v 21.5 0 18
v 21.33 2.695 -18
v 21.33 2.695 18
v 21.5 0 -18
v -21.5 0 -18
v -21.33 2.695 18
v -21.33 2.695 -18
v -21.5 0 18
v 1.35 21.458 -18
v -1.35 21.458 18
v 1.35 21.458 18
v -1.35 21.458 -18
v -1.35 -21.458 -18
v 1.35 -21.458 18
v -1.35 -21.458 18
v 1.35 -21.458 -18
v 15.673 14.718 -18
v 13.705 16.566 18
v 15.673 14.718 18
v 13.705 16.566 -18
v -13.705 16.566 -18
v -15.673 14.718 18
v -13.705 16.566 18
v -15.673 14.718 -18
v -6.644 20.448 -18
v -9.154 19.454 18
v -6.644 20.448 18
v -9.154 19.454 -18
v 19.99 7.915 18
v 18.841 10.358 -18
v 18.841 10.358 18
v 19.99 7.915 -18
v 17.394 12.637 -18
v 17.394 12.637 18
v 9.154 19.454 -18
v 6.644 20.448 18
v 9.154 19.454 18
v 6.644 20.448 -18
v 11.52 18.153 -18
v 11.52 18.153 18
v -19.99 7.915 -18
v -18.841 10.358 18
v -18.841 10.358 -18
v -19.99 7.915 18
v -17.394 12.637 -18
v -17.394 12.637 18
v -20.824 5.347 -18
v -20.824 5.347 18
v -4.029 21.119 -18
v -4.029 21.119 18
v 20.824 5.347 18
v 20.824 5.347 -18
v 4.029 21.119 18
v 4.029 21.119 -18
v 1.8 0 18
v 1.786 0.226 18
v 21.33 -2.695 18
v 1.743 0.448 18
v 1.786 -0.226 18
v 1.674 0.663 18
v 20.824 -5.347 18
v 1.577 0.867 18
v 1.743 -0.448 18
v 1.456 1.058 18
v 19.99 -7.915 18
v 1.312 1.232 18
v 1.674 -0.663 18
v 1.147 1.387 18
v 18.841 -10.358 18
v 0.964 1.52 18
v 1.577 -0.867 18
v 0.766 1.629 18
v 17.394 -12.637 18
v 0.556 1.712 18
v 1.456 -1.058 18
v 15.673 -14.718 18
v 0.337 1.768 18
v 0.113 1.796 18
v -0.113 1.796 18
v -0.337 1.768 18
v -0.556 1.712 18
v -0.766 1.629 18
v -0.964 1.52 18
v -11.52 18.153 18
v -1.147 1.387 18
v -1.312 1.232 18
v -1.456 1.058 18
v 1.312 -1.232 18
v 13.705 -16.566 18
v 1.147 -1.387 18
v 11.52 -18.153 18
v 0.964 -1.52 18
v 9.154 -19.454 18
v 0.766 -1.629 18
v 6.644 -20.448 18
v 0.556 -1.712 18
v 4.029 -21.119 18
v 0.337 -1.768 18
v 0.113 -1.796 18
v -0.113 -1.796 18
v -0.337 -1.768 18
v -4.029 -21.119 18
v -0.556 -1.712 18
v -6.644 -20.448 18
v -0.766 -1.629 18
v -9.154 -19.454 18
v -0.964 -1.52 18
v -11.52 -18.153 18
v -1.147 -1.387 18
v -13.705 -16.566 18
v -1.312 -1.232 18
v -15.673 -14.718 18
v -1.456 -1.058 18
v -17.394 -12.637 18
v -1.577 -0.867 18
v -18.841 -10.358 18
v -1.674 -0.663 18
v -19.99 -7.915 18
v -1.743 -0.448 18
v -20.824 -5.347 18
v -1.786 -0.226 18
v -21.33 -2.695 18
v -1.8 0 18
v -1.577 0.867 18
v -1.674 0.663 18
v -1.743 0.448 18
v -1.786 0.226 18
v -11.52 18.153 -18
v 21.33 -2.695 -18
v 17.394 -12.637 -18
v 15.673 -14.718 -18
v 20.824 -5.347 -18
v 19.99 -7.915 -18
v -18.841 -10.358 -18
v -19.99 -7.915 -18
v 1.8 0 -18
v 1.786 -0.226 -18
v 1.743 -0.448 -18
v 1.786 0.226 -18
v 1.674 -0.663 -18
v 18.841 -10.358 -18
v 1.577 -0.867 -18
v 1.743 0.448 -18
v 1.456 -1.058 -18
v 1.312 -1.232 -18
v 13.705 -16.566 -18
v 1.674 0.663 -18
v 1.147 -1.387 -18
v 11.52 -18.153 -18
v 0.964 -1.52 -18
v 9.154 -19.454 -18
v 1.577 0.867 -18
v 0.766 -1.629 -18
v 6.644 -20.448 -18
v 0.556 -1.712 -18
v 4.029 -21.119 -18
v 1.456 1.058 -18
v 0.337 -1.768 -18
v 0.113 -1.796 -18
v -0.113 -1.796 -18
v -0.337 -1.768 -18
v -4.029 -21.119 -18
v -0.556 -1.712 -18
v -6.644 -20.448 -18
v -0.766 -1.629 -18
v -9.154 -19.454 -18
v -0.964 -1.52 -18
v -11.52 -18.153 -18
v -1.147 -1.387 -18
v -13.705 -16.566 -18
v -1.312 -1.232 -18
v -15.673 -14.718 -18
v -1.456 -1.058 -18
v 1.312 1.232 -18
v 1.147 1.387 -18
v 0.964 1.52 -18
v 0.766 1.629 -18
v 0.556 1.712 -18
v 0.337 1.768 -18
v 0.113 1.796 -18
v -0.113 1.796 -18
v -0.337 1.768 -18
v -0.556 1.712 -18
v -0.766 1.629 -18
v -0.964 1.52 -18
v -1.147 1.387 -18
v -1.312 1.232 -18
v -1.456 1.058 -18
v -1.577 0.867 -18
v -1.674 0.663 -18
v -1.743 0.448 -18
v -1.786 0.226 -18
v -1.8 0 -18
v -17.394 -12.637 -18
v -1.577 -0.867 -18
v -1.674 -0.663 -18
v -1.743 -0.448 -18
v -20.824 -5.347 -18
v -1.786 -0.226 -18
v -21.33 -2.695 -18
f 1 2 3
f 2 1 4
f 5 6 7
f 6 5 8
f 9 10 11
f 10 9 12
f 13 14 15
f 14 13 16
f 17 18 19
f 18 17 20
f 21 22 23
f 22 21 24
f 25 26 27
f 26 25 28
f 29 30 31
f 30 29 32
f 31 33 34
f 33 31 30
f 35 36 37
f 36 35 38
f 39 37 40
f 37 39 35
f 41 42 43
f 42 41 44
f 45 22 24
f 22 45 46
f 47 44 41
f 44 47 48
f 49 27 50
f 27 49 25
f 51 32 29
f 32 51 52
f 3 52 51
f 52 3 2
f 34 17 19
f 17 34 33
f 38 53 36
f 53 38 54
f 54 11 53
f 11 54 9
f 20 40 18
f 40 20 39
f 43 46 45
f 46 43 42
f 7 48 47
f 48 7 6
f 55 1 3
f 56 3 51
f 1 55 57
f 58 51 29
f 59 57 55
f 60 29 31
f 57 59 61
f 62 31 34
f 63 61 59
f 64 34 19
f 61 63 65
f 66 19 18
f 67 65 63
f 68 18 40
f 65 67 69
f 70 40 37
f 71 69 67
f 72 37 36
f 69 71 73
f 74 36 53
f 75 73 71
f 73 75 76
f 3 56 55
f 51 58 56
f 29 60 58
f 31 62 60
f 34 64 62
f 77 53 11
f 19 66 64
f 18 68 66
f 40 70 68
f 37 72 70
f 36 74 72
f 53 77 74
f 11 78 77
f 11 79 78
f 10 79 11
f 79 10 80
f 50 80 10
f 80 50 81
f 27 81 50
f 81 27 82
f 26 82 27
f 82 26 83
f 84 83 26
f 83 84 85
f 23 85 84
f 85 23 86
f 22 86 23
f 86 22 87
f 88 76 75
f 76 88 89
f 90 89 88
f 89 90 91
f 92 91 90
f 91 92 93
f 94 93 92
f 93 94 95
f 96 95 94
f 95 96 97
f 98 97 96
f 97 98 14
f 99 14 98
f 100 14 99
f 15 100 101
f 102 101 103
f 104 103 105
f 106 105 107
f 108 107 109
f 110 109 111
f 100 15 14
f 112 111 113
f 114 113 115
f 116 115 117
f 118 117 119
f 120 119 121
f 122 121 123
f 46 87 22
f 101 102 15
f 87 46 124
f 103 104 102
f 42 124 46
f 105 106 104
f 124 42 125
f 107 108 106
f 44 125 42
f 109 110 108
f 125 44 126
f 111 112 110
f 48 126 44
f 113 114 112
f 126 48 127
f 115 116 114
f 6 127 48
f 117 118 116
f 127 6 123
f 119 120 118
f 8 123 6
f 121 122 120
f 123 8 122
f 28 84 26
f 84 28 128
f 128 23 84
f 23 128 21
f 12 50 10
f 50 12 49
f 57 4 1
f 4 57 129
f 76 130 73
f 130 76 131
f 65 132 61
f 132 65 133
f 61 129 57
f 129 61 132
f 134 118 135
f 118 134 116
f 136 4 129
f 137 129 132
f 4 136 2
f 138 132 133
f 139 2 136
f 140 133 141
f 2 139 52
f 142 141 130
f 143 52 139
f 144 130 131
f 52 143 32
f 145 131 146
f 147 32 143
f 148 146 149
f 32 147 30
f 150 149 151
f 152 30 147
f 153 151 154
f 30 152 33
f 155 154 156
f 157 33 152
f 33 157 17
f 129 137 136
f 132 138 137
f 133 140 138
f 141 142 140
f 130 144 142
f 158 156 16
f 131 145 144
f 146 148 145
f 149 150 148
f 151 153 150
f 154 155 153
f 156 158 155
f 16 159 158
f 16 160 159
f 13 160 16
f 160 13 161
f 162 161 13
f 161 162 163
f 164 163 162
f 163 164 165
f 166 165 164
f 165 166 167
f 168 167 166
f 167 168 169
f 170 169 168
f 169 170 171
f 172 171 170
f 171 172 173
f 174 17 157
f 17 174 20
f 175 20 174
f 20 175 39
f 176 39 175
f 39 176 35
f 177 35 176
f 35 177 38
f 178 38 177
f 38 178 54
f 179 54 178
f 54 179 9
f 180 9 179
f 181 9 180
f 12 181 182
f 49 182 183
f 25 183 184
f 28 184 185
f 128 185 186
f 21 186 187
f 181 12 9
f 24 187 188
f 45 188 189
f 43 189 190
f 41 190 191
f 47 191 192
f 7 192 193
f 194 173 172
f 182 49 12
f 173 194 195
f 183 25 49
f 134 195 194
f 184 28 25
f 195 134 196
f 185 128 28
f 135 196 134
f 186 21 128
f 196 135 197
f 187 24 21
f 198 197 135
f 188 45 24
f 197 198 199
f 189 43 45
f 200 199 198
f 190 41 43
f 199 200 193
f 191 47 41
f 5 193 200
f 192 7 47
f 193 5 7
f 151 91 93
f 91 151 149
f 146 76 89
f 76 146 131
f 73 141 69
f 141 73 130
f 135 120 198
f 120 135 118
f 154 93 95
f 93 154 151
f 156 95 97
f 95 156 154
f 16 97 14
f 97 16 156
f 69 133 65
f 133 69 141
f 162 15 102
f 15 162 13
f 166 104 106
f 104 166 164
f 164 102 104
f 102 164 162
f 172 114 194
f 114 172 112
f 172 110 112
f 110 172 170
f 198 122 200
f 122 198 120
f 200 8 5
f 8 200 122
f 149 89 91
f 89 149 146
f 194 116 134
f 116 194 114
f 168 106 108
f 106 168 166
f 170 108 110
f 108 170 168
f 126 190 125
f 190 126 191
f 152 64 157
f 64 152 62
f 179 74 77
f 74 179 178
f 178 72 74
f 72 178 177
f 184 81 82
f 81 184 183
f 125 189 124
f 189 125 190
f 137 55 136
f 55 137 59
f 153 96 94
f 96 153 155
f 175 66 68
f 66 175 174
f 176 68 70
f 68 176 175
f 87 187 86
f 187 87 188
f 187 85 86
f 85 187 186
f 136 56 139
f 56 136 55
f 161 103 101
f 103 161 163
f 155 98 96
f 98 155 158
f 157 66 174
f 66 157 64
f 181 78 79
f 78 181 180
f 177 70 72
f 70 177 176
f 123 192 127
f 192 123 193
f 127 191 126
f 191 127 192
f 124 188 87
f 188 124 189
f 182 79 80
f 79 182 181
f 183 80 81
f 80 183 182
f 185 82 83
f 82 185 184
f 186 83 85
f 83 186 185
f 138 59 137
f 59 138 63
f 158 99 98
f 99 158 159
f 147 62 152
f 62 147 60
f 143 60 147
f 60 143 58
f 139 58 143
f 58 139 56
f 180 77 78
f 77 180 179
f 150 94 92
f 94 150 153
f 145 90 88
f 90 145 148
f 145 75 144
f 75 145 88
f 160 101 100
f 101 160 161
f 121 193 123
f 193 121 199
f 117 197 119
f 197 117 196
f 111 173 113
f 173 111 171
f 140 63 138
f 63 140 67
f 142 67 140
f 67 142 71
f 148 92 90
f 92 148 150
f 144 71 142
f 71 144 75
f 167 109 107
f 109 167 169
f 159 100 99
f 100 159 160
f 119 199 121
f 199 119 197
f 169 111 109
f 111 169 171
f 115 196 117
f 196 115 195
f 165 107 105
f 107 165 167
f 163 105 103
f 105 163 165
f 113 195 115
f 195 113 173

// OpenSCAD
$fn = 50;


difference() {
	union() {
		translate(v = [0, 0, -18.0000000000]) {
			cylinder(h = 36, r = 21.5000000000);
		}
	}
	union() {
		translate(v = [0, 0, -100.0000000000]) {
			cylinder(h = 200, r = 1.8000000000);
		}
	}
}
